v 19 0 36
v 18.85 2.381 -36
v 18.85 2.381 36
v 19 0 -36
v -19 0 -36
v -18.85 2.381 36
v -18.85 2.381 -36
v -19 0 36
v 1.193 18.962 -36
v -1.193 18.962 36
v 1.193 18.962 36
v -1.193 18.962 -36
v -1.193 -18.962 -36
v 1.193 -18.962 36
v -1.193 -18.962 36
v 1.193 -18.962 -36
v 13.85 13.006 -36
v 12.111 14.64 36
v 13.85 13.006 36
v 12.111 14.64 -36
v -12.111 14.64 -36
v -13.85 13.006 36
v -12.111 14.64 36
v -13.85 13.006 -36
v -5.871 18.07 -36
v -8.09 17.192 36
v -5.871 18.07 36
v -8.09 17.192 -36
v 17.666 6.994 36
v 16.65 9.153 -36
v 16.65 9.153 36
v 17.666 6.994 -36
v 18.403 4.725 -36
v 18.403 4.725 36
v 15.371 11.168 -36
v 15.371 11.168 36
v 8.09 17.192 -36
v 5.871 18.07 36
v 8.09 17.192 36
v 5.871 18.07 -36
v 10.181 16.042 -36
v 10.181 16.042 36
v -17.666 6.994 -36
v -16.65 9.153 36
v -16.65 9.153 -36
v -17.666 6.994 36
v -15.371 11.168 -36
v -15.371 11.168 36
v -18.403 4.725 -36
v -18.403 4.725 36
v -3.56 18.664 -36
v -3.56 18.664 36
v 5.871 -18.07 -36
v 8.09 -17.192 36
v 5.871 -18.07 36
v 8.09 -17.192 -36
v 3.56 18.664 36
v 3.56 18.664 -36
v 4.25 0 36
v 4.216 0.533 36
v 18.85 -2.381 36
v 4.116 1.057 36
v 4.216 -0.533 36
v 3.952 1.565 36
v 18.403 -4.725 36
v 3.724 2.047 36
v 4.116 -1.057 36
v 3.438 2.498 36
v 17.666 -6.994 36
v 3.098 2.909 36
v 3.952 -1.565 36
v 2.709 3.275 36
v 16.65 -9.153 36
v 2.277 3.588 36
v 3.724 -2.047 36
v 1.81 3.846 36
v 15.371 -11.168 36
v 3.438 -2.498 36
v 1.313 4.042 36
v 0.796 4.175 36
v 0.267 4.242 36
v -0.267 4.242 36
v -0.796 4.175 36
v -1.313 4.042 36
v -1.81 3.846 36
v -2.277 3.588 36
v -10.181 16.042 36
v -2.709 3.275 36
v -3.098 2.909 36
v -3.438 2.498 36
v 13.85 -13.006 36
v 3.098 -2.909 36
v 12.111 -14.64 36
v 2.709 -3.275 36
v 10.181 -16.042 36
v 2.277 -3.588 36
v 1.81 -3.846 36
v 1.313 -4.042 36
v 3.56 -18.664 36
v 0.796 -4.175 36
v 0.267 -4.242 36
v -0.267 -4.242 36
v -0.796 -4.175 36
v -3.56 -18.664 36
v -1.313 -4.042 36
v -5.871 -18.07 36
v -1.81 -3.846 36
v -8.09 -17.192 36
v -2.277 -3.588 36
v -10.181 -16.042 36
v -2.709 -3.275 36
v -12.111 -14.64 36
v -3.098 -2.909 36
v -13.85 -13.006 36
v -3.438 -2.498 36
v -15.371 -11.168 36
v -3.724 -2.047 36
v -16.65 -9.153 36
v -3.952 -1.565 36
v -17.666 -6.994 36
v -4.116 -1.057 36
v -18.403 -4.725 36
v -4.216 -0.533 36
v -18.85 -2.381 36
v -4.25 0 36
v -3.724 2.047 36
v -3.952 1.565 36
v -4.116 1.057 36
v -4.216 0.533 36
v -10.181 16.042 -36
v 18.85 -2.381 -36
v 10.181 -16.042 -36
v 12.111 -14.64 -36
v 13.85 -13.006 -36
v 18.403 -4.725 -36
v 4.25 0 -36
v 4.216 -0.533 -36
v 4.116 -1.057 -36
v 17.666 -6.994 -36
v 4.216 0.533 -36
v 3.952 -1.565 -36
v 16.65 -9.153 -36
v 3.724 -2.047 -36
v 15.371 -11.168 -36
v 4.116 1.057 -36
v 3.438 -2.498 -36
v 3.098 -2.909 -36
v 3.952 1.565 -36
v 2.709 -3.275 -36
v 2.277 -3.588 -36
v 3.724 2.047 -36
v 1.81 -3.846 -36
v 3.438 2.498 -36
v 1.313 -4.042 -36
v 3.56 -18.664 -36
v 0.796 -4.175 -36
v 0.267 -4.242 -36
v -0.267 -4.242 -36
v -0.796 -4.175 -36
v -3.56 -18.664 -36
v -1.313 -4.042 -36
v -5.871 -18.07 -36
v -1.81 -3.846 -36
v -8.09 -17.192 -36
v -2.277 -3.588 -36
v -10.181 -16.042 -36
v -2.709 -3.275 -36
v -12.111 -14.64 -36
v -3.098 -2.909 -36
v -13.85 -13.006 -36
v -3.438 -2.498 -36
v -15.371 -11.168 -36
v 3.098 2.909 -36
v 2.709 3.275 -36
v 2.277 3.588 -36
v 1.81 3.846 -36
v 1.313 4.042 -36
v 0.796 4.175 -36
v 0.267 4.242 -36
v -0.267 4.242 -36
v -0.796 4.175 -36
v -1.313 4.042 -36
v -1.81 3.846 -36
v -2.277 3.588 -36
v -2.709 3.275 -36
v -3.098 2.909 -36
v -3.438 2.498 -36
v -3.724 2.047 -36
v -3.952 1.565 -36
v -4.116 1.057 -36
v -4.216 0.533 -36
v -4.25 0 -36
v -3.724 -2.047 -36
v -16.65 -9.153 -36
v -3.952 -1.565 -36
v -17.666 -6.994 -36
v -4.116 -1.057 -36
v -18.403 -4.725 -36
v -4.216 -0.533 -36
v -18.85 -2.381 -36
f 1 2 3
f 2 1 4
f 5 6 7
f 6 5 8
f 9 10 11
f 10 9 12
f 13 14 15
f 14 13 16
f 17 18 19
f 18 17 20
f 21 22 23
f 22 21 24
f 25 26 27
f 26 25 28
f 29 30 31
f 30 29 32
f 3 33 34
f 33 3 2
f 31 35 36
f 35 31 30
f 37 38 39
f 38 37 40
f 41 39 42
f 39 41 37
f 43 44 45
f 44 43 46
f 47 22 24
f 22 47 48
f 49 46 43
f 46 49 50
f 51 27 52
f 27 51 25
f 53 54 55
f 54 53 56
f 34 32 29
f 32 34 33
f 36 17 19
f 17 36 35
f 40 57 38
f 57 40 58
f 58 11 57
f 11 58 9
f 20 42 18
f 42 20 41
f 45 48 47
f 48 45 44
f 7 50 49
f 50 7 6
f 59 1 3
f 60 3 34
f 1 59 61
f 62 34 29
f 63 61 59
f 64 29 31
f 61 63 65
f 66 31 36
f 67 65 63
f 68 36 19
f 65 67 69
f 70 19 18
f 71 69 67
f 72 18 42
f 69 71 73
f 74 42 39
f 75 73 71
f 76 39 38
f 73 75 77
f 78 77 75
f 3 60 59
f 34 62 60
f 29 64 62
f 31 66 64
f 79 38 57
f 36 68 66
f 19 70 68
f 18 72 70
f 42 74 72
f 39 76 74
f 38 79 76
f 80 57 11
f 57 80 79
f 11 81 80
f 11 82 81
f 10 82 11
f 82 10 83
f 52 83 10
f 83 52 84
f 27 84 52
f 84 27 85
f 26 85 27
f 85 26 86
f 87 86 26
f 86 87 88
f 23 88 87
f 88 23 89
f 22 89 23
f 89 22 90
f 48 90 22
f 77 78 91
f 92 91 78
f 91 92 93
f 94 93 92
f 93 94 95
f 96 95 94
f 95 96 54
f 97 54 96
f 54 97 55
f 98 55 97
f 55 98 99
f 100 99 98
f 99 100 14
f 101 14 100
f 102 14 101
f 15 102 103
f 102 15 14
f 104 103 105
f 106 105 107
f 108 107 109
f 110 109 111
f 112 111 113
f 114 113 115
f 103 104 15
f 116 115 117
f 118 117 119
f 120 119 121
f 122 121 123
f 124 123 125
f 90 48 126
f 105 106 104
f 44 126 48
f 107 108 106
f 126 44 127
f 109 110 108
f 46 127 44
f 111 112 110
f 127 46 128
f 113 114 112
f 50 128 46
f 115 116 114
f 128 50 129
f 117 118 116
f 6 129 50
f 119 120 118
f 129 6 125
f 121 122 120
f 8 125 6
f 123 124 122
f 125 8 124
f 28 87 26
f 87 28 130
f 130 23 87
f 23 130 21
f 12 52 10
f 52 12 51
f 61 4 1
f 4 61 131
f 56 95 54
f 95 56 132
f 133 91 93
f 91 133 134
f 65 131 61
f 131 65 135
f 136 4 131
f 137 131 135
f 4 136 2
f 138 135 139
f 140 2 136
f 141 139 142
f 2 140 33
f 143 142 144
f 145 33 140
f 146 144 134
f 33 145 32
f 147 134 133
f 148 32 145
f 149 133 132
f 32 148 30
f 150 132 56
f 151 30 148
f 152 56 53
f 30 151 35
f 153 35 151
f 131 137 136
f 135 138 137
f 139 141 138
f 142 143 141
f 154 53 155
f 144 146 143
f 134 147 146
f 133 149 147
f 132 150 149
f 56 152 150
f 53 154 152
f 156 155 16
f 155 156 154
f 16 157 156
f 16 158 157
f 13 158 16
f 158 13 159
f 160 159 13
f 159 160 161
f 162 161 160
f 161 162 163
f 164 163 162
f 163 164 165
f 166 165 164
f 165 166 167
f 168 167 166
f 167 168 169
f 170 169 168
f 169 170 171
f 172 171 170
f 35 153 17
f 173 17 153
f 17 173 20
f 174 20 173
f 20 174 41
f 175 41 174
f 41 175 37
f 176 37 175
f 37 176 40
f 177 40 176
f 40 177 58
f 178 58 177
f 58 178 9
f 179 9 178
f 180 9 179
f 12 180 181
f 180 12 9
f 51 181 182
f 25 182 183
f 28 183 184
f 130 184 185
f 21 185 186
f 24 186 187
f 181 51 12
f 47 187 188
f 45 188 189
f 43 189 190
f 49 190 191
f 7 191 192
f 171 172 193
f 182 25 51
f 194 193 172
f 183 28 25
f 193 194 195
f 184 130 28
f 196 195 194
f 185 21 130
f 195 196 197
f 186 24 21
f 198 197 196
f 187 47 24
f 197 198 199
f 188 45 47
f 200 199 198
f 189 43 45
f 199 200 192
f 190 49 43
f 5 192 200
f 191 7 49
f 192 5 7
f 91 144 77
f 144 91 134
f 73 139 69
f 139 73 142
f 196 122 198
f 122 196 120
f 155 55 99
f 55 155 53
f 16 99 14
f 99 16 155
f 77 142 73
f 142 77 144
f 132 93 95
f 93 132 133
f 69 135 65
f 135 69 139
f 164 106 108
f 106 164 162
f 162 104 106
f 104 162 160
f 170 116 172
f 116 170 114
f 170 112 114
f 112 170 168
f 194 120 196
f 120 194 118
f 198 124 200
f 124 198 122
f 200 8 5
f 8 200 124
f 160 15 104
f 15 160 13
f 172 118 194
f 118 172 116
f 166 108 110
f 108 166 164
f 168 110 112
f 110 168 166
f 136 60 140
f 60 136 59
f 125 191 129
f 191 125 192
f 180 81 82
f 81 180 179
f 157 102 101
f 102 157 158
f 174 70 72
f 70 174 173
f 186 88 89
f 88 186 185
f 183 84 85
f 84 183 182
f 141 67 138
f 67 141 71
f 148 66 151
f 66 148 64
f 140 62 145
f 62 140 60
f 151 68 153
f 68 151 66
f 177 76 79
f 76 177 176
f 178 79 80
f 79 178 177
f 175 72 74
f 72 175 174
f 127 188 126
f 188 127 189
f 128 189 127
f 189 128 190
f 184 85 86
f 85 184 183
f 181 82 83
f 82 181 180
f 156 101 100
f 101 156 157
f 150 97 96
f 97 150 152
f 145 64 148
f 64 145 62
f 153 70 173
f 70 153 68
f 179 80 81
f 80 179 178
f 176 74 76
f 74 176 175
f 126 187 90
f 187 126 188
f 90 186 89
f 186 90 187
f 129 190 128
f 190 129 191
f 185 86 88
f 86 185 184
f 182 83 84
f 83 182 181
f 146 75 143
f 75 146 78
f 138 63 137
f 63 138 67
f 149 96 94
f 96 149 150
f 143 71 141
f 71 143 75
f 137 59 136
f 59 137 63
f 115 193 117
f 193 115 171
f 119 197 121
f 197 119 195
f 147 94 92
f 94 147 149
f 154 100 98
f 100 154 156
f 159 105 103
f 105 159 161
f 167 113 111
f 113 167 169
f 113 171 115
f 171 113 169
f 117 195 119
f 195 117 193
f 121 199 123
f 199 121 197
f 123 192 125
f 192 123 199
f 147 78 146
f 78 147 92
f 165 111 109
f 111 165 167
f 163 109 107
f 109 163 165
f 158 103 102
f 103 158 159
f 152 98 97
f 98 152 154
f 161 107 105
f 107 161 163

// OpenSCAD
$fn = 50;


difference() {
	union() {
		translate(v = [0, 0, -36.0000000000]) {
			cylinder(h = 72, r = 19.0000000000);
		}
	}
	union() {
		translate(v = [0, 0, -100.0000000000]) {
			cylinder(h = 200, r = 4.2500000000);
		}
	}
}
